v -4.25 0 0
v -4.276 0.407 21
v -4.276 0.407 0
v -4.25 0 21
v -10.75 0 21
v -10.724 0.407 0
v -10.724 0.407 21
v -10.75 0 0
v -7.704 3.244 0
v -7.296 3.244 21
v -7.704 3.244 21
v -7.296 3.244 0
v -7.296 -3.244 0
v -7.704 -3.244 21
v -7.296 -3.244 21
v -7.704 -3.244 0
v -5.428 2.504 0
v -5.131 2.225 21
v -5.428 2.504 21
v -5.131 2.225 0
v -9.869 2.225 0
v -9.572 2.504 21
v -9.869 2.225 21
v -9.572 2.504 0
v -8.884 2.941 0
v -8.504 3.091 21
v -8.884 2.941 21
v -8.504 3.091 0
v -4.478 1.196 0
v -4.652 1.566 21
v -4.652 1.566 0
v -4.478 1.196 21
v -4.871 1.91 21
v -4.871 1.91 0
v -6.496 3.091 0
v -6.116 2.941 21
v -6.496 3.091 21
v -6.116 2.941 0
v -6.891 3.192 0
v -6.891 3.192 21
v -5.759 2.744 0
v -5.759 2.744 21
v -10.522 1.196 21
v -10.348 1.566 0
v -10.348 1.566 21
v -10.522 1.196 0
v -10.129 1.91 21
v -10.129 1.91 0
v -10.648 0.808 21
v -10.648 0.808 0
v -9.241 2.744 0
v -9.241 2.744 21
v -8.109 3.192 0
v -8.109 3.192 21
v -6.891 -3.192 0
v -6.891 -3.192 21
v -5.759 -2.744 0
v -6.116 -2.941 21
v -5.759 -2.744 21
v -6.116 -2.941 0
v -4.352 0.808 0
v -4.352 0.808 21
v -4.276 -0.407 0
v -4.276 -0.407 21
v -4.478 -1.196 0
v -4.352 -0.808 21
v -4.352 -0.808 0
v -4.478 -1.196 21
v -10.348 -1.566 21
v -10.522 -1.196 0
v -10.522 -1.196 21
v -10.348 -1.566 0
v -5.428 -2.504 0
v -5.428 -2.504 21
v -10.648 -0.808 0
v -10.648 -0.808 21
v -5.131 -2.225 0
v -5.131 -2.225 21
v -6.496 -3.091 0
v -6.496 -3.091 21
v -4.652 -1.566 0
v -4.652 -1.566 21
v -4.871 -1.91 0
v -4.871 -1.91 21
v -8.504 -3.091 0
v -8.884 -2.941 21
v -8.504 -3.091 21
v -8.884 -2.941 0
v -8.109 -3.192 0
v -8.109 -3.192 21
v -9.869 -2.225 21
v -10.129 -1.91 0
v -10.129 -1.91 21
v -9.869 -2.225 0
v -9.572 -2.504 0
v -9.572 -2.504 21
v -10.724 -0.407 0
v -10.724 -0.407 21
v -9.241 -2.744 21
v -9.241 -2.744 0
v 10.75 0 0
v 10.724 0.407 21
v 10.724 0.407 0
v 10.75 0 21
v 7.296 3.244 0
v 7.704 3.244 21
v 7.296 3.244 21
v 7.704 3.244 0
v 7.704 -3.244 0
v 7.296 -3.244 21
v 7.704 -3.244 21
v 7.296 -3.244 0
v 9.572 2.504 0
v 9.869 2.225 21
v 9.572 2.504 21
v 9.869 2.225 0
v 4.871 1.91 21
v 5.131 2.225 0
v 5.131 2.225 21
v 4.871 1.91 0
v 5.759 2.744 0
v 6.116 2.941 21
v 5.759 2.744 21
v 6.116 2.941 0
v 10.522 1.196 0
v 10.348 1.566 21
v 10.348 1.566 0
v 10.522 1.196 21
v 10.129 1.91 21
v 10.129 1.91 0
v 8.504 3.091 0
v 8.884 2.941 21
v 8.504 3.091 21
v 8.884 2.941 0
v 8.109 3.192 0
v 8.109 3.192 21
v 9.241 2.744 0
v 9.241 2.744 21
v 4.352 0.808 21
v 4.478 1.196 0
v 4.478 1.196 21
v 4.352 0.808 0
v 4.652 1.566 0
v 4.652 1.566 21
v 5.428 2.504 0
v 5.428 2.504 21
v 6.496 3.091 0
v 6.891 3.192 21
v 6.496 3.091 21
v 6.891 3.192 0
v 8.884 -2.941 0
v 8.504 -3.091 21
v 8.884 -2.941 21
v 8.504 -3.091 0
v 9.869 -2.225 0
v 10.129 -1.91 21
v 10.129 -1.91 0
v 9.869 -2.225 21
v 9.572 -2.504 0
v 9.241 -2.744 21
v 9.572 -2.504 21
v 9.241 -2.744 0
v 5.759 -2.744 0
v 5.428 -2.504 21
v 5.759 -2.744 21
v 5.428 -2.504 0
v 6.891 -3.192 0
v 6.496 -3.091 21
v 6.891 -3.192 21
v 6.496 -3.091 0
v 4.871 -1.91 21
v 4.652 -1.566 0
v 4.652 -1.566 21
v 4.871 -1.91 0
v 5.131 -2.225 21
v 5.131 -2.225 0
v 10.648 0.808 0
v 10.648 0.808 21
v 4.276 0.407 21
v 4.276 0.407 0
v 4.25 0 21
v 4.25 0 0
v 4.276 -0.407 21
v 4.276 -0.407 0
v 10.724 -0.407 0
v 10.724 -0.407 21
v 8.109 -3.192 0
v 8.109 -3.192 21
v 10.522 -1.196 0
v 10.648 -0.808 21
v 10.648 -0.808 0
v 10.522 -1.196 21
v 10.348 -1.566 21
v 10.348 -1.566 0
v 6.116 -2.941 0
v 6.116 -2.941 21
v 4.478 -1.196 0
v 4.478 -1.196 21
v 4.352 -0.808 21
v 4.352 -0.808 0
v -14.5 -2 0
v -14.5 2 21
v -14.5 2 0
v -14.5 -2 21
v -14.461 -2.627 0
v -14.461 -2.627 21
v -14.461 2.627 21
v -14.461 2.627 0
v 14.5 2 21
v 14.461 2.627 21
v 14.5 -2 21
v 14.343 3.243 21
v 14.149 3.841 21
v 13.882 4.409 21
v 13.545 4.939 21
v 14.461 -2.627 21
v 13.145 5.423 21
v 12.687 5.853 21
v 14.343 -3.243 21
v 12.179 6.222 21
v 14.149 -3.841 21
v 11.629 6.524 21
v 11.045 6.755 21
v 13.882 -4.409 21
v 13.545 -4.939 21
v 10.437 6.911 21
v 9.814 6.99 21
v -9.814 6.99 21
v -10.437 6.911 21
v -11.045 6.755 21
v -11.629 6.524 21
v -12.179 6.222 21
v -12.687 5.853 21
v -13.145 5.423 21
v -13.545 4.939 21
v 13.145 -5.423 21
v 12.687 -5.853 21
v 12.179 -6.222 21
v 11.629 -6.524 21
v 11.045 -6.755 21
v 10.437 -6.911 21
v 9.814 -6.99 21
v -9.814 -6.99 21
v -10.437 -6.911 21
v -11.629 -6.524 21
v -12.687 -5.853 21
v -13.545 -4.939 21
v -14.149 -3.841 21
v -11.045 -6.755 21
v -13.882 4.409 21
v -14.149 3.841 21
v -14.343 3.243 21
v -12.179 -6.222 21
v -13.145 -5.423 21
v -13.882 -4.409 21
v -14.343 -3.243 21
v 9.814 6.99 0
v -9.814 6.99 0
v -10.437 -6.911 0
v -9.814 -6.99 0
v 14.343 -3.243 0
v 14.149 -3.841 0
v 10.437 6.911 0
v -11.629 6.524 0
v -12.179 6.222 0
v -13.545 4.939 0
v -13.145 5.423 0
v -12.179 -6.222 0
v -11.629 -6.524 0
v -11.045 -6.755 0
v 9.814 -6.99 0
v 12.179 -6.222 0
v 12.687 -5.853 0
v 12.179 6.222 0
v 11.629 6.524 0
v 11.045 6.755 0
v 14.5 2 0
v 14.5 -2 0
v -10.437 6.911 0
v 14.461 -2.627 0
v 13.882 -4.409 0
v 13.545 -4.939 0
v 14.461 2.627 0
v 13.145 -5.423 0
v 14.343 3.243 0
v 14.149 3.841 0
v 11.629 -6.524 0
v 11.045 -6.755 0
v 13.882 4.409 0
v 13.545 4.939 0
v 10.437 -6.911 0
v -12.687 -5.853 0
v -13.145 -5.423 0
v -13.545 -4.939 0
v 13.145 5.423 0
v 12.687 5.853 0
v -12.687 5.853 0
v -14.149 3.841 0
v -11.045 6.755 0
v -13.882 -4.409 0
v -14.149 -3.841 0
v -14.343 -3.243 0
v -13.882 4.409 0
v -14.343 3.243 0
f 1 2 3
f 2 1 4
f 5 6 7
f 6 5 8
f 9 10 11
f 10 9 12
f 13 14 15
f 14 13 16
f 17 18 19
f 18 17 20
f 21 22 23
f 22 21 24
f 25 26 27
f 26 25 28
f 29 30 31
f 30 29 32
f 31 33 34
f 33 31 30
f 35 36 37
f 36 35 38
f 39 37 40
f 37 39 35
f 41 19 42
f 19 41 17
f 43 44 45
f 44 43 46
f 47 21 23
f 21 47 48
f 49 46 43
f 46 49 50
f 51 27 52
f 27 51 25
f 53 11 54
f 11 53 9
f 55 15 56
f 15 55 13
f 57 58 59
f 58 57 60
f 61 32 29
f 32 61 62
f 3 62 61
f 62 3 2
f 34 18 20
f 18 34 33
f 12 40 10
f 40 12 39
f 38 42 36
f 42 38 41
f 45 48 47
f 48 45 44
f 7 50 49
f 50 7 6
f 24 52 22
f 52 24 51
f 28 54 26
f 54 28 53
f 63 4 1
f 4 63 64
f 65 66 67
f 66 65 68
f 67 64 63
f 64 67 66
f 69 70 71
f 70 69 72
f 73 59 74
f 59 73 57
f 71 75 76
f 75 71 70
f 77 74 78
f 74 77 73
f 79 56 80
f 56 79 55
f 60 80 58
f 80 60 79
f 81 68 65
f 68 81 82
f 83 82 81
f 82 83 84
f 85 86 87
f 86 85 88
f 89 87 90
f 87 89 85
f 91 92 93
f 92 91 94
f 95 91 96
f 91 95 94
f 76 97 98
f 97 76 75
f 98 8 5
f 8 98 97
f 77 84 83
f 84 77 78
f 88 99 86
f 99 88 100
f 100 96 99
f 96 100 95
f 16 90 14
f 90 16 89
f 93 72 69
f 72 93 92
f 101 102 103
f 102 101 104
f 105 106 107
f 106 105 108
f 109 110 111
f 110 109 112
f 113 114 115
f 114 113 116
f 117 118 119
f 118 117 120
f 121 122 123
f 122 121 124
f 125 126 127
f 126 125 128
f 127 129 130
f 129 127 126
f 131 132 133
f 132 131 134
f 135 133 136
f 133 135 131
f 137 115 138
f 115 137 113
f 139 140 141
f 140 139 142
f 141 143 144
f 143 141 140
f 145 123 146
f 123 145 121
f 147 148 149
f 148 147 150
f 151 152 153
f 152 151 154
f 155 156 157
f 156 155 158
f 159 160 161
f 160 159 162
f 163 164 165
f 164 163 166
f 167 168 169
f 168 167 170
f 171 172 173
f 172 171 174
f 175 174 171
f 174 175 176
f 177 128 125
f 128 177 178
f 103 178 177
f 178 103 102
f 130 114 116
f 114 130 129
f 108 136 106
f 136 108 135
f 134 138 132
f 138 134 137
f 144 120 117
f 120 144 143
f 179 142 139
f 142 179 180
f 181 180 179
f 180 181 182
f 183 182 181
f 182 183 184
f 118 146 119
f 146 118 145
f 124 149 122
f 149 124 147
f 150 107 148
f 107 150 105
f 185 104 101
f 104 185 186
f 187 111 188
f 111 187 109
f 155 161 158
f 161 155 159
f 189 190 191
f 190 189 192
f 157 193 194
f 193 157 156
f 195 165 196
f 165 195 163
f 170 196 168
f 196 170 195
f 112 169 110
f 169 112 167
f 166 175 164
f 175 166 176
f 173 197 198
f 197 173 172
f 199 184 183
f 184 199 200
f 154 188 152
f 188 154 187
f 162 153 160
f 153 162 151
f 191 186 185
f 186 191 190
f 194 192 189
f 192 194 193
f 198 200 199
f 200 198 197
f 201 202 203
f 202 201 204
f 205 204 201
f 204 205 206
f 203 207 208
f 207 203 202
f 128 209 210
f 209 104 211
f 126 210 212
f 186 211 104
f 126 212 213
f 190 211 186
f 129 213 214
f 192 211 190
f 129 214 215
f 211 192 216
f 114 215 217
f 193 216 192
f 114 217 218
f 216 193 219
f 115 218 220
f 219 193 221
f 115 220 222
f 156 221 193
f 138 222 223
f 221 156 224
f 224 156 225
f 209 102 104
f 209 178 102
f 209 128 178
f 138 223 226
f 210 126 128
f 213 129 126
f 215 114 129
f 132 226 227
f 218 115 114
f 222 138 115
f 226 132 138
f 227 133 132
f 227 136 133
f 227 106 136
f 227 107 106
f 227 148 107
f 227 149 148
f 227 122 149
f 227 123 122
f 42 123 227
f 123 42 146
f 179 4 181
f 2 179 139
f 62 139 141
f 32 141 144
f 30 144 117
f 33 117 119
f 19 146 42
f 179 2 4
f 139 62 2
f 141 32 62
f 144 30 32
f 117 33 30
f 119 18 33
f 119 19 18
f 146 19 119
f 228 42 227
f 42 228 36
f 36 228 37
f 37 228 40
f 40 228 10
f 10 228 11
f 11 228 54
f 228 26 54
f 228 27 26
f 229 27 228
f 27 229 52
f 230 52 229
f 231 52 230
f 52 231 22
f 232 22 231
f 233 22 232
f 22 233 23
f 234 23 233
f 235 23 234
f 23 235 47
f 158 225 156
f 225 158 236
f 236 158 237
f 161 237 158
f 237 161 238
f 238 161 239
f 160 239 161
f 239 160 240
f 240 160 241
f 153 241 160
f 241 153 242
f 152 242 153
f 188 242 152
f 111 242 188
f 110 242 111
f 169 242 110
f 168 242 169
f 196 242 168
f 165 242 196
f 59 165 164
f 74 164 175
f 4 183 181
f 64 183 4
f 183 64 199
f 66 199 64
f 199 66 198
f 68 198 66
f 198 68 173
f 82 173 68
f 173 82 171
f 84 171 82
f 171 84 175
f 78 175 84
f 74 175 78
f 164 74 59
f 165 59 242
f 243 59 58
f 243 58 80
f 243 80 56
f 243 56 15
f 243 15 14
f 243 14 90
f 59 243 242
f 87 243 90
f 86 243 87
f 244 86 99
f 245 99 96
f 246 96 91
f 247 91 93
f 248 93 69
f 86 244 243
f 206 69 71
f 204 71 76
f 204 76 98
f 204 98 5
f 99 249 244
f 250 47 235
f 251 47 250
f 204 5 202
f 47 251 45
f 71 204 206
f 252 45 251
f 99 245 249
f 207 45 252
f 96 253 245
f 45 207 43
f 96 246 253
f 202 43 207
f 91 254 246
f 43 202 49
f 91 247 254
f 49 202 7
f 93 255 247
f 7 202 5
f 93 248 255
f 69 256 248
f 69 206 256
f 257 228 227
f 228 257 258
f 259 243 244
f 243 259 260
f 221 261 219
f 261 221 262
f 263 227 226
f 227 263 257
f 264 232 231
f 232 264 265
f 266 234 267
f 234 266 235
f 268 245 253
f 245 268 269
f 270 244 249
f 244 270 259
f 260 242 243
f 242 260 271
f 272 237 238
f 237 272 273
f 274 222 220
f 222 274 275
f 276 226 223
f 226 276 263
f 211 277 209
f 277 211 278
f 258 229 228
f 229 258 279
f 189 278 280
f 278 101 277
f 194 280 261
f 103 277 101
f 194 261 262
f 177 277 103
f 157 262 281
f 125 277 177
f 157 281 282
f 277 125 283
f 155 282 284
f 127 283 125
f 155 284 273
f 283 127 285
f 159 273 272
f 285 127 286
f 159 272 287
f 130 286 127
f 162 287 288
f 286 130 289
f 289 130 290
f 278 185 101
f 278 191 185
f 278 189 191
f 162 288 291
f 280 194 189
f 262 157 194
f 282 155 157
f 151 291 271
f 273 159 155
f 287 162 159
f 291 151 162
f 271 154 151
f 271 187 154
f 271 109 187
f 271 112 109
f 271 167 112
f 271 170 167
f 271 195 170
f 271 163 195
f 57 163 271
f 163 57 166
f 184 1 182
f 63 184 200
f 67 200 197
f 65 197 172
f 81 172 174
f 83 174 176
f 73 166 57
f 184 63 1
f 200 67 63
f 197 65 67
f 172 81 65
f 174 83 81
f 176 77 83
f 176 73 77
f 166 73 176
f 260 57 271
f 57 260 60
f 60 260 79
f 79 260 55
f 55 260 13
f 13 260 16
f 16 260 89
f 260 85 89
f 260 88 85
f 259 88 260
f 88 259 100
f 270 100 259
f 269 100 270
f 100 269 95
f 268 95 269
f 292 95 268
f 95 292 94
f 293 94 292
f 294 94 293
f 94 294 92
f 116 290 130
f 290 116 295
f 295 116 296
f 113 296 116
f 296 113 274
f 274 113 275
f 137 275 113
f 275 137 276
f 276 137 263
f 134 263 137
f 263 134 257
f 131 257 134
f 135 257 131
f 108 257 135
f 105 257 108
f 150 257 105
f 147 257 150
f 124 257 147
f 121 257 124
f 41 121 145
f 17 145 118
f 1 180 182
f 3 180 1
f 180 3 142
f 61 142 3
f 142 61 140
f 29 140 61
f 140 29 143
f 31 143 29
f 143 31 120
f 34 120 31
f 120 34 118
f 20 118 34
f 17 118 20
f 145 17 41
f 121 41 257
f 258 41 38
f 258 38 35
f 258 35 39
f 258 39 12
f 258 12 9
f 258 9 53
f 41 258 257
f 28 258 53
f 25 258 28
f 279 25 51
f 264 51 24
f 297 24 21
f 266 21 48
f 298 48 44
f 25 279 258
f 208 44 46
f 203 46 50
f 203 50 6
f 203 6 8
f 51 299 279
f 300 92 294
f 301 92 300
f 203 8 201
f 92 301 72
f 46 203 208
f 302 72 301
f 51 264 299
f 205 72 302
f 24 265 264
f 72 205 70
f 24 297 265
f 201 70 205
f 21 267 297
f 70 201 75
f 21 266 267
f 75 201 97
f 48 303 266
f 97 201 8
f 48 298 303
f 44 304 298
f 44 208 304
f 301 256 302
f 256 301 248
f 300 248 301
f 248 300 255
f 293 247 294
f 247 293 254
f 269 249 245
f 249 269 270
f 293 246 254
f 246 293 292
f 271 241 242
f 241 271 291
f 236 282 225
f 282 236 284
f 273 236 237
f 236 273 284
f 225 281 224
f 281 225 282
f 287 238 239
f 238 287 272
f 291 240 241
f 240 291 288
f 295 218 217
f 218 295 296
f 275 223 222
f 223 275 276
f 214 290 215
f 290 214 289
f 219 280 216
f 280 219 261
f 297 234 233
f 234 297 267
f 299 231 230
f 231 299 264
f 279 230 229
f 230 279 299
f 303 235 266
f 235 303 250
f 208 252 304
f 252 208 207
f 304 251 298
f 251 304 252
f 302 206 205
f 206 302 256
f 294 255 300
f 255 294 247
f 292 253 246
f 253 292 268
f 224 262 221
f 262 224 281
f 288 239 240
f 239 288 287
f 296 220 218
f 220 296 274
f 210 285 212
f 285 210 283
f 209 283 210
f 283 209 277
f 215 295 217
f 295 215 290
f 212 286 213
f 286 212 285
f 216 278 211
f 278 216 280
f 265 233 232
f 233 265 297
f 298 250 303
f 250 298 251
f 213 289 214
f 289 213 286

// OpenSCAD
$fn = 50;


difference() {
	union() {
		hull() {
			translate(v = [-9.5000000000, 2.0000000000, 0]) {
				cylinder(h = 21, r = 5);
			}
			translate(v = [9.5000000000, 2.0000000000, 0]) {
				cylinder(h = 21, r = 5);
			}
			translate(v = [-9.5000000000, -2.0000000000, 0]) {
				cylinder(h = 21, r = 5);
			}
			translate(v = [9.5000000000, -2.0000000000, 0]) {
				cylinder(h = 21, r = 5);
			}
		}
	}
	union() {
		translate(v = [-7.5000000000, 0.0000000000, 0]) {
			cylinder(h = 21, r = 3.2500000000);
		}
		translate(v = [7.5000000000, 0.0000000000, 0]) {
			cylinder(h = 21, r = 3.2500000000);
		}
		translate(v = [-7.5000000000, 0.0000000000, 0]) {
			cylinder(h = 21, r = 1.8000000000);
		}
		translate(v = [7.5000000000, 0.0000000000, 0]) {
			cylinder(h = 21, r = 1.8000000000);
		}
		translate(v = [-7.5000000000, 0.0000000000, 0]) {
			cylinder(h = 21, r = 1.8000000000);
		}
		translate(v = [7.5000000000, 0.0000000000, 0]) {
			cylinder(h = 21, r = 1.8000000000);
		}
		translate(v = [-7.5000000000, 0.0000000000, 0]) {
			cylinder(h = 21, r = 1.8000000000);
		}
		translate(v = [7.5000000000, 0.0000000000, 0]) {
			cylinder(h = 21, r = 1.8000000000);
		}
	}
}
